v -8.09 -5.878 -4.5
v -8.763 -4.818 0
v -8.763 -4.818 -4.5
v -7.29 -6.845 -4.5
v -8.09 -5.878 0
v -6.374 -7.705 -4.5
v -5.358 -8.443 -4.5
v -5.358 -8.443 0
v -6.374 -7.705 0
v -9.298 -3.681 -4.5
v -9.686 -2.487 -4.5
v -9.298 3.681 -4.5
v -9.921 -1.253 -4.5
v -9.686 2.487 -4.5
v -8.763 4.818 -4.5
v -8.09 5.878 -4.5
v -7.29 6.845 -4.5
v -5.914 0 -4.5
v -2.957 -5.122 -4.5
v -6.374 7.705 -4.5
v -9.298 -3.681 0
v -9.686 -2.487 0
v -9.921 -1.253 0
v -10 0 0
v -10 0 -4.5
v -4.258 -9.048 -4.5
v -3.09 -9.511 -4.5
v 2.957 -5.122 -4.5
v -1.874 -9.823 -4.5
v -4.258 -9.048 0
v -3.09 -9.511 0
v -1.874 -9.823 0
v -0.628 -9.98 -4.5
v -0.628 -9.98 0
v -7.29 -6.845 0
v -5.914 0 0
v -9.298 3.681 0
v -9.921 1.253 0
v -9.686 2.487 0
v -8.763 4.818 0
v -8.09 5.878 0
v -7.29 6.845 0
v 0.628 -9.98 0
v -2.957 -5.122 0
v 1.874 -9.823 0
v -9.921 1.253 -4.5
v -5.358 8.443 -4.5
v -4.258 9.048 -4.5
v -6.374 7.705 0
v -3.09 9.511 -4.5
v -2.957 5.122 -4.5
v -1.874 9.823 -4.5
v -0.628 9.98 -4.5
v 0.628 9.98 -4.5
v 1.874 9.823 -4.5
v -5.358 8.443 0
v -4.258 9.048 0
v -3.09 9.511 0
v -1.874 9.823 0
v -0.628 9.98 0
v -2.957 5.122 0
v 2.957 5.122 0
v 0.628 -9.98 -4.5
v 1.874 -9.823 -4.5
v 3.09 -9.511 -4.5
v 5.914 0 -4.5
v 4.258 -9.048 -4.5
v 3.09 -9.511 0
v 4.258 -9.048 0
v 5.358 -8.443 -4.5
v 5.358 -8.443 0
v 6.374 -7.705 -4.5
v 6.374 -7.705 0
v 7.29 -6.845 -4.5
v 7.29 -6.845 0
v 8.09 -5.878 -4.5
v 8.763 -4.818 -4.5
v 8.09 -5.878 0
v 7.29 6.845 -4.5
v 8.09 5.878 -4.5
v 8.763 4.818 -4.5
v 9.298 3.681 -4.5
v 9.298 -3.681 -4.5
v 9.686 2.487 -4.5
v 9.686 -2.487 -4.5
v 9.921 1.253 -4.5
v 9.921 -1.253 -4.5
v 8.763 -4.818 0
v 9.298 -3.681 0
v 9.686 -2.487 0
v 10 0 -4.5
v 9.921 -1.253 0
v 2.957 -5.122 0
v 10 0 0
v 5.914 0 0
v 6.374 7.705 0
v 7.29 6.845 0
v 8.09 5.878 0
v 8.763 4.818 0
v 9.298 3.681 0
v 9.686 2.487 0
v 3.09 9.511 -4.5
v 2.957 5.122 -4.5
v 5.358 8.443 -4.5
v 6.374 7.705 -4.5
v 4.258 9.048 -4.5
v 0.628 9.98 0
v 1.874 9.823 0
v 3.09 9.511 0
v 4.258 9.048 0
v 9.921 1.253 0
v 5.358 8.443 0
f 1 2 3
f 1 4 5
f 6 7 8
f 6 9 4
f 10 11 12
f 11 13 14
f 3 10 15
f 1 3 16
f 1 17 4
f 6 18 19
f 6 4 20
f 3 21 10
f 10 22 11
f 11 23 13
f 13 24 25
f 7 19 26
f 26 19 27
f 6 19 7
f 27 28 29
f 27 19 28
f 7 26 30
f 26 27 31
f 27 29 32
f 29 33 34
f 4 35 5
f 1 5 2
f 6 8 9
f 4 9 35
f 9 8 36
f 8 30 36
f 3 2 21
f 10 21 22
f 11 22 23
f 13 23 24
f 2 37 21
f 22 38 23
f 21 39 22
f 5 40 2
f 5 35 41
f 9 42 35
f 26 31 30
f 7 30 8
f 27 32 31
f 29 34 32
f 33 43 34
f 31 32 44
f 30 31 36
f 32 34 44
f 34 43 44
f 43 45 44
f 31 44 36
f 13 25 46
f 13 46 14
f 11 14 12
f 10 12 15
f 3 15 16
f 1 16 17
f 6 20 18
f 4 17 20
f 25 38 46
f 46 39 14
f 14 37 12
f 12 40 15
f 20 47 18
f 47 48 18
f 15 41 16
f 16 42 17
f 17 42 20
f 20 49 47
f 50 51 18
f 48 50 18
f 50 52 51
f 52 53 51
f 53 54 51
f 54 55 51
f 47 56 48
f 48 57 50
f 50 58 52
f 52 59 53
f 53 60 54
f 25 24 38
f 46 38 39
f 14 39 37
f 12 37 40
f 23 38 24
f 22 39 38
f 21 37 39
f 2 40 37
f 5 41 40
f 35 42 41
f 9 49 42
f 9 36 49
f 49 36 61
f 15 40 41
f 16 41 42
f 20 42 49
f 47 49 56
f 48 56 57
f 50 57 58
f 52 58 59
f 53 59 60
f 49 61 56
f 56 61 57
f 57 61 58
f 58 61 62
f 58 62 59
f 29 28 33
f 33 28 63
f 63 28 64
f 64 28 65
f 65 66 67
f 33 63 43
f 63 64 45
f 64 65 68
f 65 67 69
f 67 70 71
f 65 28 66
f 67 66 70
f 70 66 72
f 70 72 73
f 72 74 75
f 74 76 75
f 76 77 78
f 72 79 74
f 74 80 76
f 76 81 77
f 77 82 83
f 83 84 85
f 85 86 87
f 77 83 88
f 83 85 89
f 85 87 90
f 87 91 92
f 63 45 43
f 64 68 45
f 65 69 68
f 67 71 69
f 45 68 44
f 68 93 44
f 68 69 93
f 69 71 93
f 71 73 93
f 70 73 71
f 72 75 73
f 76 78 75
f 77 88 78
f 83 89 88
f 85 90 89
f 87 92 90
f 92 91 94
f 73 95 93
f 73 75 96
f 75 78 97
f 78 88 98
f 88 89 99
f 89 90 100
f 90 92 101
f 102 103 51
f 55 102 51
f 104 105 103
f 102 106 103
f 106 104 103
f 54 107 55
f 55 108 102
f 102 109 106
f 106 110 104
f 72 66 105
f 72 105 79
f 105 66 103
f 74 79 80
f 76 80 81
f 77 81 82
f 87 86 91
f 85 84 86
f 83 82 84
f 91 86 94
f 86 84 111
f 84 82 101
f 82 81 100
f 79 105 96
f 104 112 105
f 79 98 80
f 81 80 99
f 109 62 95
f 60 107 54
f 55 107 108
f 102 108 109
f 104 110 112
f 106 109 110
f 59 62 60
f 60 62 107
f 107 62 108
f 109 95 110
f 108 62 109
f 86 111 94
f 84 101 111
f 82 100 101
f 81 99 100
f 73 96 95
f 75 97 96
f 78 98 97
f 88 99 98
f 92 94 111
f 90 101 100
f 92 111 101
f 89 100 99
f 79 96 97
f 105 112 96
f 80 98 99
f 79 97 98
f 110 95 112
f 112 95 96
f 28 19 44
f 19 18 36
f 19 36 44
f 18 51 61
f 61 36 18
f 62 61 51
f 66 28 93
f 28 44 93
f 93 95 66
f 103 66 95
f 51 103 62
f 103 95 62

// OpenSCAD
$fn = 50;

difference() {
	union() {
		translate(v = [0, 0, -4.5]) {
			cylinder(h = 4.5, r = 10.0);
		}
		#translate(v = [0, 0, -6.0]) {
			cylinder(h = 6, r = 2.875);
		}
	}
	union() {
		translate(v = [0, 0, 0]) {
			rotate(a = [0, 0, 0]) {
				difference() {
					union() {
						translate(v = [0, 0, -5]) {
							linear_extrude(height = 5) {
								polygon(points = [[5.914249999999999, 0.0], [2.957125, 5.1218907443321156], [-2.9571249999999982, 5.1218907443321156], [-5.914249999999999, 7.242867331857232e-16], [-2.9571250000000022, -5.121890744332115], [2.9571249999999956, -5.121890744332118]]);
							}
						}
					}
					union();
				}
			}
		}
		#translate(v = [0, 0, -100.0]) {
			cylinder(h = 200, r = 3.25);
		}
	}
}
